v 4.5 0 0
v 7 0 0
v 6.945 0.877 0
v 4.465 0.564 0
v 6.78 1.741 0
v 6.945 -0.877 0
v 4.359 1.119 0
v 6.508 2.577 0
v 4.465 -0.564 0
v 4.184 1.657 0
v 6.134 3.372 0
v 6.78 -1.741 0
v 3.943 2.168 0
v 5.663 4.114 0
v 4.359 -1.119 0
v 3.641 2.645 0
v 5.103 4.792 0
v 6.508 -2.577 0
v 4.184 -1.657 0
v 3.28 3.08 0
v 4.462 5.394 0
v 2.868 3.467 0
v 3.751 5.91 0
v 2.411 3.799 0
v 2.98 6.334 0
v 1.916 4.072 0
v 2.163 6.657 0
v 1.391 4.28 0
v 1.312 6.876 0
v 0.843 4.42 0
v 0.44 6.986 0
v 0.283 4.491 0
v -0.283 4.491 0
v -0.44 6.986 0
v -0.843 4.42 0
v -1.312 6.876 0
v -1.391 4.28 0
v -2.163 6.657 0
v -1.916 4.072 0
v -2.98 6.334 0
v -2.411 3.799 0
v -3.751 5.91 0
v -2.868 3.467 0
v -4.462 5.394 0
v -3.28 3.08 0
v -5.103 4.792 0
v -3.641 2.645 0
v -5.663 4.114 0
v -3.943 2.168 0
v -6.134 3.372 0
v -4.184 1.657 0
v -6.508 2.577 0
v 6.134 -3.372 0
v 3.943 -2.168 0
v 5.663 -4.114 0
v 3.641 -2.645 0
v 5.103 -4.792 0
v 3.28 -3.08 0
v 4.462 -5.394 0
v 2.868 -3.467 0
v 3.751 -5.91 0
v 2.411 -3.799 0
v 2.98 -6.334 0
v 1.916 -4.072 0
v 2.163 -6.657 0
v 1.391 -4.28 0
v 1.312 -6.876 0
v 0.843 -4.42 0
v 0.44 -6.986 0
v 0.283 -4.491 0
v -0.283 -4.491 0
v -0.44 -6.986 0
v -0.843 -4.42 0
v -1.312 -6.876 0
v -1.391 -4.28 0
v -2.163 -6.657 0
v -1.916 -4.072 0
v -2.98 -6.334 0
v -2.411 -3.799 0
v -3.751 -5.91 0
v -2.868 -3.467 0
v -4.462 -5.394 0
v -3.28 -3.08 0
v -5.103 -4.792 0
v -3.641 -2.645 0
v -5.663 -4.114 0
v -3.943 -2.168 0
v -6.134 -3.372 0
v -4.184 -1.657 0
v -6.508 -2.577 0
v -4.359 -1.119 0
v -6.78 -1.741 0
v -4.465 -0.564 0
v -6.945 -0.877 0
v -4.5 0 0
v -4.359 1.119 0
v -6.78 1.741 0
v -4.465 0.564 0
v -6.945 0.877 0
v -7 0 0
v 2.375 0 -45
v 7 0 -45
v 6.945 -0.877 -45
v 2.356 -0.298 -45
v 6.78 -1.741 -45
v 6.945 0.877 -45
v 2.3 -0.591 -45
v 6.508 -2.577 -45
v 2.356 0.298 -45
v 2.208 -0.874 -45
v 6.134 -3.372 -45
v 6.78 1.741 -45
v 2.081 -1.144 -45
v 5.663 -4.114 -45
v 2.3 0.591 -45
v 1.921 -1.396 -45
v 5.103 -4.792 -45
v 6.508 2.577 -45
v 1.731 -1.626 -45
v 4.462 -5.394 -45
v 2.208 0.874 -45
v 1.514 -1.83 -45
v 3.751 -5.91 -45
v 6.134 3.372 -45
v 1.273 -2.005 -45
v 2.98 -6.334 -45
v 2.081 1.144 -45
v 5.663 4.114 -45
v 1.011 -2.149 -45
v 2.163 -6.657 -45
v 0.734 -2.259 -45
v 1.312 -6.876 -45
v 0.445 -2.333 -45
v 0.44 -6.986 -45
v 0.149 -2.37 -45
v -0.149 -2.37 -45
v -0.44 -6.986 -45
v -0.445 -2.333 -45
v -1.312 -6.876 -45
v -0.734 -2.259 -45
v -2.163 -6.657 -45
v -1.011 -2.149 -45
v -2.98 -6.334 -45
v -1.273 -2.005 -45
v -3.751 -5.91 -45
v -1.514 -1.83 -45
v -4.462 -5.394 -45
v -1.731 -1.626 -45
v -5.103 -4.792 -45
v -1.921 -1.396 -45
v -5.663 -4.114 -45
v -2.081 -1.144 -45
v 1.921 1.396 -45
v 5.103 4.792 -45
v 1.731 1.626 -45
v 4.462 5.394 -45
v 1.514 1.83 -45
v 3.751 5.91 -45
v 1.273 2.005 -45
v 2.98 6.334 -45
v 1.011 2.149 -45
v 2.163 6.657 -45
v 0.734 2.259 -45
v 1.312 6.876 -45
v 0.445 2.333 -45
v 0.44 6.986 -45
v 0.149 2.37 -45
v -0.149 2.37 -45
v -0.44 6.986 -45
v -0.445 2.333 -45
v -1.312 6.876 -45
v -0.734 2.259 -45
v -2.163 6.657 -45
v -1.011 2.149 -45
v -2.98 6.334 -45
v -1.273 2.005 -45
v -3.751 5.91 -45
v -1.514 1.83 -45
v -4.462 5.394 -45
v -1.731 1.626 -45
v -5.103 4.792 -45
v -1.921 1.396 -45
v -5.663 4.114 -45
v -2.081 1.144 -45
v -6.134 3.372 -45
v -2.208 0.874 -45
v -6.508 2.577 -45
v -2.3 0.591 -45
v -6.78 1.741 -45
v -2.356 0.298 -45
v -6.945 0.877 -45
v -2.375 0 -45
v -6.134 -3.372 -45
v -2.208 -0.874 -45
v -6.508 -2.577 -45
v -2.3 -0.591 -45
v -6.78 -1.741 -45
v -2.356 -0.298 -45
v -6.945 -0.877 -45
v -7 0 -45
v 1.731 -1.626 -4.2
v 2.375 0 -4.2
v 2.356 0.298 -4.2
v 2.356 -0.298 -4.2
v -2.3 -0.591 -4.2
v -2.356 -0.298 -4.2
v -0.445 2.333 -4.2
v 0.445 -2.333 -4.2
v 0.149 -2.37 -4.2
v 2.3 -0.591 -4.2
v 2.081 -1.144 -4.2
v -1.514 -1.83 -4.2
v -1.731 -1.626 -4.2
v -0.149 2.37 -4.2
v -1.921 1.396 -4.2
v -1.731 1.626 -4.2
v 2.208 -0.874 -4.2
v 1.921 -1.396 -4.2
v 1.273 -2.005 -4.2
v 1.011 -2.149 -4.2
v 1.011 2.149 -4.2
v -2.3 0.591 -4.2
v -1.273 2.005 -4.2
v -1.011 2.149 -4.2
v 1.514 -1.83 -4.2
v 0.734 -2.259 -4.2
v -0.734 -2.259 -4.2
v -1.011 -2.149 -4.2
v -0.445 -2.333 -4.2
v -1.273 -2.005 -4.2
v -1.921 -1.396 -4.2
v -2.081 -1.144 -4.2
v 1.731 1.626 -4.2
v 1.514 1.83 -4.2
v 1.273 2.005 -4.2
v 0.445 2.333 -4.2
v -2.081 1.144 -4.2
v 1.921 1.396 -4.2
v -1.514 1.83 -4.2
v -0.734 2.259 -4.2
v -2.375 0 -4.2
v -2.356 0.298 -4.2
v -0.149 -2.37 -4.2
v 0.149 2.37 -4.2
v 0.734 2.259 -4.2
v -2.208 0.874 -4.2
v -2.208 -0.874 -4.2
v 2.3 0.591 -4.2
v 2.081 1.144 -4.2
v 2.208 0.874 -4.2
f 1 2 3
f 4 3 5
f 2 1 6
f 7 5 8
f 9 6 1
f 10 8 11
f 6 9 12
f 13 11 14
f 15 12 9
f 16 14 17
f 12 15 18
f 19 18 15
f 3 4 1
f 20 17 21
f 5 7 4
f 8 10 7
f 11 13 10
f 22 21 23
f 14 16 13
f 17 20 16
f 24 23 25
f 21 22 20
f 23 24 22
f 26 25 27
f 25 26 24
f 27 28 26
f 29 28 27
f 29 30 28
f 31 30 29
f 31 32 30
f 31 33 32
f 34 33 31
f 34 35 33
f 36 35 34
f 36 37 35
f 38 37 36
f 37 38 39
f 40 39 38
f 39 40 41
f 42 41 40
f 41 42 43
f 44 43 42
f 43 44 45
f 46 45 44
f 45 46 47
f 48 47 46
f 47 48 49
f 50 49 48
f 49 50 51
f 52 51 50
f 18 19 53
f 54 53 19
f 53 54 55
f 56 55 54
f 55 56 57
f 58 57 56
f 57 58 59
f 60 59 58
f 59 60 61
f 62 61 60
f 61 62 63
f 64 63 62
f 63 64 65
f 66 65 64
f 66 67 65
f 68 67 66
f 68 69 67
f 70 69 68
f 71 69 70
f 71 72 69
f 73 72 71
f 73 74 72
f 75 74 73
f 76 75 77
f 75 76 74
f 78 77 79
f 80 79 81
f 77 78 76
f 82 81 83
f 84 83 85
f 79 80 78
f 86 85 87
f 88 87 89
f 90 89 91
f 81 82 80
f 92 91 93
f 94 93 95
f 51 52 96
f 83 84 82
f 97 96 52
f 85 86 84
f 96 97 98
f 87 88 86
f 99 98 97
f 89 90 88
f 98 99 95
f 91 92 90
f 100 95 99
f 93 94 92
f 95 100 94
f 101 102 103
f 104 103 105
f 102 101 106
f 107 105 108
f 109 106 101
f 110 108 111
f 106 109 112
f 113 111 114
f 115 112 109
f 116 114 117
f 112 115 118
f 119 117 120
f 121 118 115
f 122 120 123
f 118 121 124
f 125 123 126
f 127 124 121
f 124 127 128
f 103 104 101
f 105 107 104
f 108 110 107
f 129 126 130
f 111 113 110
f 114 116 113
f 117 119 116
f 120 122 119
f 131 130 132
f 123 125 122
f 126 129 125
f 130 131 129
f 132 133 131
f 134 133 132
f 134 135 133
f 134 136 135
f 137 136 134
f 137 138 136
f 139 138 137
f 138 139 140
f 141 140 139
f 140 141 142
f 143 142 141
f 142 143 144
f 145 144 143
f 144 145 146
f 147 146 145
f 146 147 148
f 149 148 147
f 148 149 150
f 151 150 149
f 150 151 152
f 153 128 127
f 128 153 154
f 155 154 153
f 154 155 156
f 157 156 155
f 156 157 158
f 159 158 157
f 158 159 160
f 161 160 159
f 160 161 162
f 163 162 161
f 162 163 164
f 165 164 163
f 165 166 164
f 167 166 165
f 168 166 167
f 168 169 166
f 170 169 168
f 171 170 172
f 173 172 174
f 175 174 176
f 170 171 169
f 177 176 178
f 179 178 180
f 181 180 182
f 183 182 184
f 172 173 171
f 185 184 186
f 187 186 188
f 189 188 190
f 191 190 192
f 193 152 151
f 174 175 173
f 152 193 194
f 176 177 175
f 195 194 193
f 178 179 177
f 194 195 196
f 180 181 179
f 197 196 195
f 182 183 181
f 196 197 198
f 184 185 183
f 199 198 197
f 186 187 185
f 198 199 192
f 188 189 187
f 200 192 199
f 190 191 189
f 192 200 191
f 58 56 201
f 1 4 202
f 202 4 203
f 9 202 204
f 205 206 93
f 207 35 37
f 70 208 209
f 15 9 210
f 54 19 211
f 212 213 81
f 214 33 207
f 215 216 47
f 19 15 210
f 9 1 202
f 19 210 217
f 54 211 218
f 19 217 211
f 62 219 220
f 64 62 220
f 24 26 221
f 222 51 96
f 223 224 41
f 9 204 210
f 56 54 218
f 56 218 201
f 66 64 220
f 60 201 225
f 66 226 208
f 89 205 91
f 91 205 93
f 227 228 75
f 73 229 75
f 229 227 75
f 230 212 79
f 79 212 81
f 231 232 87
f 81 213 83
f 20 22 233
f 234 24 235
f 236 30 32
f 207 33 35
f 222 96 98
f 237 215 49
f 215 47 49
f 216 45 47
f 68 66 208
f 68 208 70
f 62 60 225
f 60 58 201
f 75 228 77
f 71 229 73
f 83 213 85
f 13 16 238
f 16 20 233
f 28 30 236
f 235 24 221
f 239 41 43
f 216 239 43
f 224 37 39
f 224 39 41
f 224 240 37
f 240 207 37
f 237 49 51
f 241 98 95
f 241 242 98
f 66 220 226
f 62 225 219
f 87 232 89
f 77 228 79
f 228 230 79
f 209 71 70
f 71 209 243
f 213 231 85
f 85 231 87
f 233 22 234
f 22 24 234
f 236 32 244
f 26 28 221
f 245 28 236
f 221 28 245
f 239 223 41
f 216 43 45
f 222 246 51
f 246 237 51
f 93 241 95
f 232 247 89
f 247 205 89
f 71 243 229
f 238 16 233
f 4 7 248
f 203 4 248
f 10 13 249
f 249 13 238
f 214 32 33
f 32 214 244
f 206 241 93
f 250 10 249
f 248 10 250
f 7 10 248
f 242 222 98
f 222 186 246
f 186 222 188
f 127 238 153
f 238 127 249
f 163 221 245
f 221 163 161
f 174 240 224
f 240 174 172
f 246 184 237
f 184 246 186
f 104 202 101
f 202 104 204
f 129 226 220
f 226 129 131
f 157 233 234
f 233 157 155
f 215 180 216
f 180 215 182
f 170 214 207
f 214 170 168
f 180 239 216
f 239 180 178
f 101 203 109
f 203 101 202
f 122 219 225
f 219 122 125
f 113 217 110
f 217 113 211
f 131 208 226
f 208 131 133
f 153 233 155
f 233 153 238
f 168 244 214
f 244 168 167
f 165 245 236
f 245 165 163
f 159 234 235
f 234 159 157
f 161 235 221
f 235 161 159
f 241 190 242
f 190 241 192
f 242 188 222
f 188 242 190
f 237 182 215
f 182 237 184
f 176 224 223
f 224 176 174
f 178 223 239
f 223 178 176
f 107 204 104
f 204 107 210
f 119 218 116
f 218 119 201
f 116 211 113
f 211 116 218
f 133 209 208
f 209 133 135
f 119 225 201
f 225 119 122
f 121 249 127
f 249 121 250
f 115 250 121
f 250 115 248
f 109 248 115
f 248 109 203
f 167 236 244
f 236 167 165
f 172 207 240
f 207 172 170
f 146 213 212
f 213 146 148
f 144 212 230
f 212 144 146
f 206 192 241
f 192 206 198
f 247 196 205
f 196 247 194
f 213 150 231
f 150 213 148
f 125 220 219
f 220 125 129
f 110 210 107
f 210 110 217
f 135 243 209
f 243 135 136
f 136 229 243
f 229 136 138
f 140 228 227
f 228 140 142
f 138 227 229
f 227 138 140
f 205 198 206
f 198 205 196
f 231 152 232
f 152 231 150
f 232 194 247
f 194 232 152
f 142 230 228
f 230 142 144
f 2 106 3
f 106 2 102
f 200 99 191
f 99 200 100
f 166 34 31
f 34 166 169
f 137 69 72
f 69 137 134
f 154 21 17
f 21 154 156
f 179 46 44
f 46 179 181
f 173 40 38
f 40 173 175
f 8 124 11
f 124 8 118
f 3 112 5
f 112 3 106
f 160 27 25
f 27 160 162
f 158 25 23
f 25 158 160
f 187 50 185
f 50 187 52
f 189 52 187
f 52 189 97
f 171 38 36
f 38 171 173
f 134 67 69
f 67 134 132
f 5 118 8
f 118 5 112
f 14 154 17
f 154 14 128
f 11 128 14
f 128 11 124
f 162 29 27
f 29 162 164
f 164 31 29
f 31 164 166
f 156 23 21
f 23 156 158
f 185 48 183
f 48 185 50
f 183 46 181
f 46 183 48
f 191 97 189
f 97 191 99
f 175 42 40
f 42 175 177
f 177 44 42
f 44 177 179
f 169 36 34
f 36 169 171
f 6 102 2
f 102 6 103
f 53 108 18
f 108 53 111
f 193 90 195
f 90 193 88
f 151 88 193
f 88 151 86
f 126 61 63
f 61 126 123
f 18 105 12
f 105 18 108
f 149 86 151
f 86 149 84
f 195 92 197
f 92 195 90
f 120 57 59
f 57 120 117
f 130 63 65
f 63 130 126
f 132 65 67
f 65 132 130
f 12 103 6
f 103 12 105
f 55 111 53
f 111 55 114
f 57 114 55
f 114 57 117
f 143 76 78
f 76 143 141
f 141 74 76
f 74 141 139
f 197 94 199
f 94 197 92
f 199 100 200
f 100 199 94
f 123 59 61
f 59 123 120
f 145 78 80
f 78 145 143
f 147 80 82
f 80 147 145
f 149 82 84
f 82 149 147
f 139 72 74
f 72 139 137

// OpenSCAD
$fn = 50;


difference() {
	union() {
		translate(v = [0, 0, -45.0000000000]) {
			cylinder(h = 45, r = 7.0000000000);
		}
		cylinder(h = 0, r = 17.0000000000);
	}
	union() {
		translate(v = [0, 0, 0]) {
			rotate(a = [0, 0, 0]) {
				difference() {
					union() {
						#translate(v = [0, 0, -45.0000000000]) {
							cylinder(h = 45, r = 2.2500000000);
						}
						#translate(v = [0, 0, -4.2000000000]) {
							cylinder(h = 4.2000000000, r = 7.0000000000, r1 = 2.3750000000, r2 = 4.5000000000);
						}
						#translate(v = [0, 0, -45.0000000000]) {
							cylinder(h = 45, r = 2.3750000000);
						}
						#translate(v = [0, 0, -45.0000000000]) {
							cylinder(h = 45, r = 2.2500000000);
						}
					}
					union();
				}
			}
		}
	}
}
